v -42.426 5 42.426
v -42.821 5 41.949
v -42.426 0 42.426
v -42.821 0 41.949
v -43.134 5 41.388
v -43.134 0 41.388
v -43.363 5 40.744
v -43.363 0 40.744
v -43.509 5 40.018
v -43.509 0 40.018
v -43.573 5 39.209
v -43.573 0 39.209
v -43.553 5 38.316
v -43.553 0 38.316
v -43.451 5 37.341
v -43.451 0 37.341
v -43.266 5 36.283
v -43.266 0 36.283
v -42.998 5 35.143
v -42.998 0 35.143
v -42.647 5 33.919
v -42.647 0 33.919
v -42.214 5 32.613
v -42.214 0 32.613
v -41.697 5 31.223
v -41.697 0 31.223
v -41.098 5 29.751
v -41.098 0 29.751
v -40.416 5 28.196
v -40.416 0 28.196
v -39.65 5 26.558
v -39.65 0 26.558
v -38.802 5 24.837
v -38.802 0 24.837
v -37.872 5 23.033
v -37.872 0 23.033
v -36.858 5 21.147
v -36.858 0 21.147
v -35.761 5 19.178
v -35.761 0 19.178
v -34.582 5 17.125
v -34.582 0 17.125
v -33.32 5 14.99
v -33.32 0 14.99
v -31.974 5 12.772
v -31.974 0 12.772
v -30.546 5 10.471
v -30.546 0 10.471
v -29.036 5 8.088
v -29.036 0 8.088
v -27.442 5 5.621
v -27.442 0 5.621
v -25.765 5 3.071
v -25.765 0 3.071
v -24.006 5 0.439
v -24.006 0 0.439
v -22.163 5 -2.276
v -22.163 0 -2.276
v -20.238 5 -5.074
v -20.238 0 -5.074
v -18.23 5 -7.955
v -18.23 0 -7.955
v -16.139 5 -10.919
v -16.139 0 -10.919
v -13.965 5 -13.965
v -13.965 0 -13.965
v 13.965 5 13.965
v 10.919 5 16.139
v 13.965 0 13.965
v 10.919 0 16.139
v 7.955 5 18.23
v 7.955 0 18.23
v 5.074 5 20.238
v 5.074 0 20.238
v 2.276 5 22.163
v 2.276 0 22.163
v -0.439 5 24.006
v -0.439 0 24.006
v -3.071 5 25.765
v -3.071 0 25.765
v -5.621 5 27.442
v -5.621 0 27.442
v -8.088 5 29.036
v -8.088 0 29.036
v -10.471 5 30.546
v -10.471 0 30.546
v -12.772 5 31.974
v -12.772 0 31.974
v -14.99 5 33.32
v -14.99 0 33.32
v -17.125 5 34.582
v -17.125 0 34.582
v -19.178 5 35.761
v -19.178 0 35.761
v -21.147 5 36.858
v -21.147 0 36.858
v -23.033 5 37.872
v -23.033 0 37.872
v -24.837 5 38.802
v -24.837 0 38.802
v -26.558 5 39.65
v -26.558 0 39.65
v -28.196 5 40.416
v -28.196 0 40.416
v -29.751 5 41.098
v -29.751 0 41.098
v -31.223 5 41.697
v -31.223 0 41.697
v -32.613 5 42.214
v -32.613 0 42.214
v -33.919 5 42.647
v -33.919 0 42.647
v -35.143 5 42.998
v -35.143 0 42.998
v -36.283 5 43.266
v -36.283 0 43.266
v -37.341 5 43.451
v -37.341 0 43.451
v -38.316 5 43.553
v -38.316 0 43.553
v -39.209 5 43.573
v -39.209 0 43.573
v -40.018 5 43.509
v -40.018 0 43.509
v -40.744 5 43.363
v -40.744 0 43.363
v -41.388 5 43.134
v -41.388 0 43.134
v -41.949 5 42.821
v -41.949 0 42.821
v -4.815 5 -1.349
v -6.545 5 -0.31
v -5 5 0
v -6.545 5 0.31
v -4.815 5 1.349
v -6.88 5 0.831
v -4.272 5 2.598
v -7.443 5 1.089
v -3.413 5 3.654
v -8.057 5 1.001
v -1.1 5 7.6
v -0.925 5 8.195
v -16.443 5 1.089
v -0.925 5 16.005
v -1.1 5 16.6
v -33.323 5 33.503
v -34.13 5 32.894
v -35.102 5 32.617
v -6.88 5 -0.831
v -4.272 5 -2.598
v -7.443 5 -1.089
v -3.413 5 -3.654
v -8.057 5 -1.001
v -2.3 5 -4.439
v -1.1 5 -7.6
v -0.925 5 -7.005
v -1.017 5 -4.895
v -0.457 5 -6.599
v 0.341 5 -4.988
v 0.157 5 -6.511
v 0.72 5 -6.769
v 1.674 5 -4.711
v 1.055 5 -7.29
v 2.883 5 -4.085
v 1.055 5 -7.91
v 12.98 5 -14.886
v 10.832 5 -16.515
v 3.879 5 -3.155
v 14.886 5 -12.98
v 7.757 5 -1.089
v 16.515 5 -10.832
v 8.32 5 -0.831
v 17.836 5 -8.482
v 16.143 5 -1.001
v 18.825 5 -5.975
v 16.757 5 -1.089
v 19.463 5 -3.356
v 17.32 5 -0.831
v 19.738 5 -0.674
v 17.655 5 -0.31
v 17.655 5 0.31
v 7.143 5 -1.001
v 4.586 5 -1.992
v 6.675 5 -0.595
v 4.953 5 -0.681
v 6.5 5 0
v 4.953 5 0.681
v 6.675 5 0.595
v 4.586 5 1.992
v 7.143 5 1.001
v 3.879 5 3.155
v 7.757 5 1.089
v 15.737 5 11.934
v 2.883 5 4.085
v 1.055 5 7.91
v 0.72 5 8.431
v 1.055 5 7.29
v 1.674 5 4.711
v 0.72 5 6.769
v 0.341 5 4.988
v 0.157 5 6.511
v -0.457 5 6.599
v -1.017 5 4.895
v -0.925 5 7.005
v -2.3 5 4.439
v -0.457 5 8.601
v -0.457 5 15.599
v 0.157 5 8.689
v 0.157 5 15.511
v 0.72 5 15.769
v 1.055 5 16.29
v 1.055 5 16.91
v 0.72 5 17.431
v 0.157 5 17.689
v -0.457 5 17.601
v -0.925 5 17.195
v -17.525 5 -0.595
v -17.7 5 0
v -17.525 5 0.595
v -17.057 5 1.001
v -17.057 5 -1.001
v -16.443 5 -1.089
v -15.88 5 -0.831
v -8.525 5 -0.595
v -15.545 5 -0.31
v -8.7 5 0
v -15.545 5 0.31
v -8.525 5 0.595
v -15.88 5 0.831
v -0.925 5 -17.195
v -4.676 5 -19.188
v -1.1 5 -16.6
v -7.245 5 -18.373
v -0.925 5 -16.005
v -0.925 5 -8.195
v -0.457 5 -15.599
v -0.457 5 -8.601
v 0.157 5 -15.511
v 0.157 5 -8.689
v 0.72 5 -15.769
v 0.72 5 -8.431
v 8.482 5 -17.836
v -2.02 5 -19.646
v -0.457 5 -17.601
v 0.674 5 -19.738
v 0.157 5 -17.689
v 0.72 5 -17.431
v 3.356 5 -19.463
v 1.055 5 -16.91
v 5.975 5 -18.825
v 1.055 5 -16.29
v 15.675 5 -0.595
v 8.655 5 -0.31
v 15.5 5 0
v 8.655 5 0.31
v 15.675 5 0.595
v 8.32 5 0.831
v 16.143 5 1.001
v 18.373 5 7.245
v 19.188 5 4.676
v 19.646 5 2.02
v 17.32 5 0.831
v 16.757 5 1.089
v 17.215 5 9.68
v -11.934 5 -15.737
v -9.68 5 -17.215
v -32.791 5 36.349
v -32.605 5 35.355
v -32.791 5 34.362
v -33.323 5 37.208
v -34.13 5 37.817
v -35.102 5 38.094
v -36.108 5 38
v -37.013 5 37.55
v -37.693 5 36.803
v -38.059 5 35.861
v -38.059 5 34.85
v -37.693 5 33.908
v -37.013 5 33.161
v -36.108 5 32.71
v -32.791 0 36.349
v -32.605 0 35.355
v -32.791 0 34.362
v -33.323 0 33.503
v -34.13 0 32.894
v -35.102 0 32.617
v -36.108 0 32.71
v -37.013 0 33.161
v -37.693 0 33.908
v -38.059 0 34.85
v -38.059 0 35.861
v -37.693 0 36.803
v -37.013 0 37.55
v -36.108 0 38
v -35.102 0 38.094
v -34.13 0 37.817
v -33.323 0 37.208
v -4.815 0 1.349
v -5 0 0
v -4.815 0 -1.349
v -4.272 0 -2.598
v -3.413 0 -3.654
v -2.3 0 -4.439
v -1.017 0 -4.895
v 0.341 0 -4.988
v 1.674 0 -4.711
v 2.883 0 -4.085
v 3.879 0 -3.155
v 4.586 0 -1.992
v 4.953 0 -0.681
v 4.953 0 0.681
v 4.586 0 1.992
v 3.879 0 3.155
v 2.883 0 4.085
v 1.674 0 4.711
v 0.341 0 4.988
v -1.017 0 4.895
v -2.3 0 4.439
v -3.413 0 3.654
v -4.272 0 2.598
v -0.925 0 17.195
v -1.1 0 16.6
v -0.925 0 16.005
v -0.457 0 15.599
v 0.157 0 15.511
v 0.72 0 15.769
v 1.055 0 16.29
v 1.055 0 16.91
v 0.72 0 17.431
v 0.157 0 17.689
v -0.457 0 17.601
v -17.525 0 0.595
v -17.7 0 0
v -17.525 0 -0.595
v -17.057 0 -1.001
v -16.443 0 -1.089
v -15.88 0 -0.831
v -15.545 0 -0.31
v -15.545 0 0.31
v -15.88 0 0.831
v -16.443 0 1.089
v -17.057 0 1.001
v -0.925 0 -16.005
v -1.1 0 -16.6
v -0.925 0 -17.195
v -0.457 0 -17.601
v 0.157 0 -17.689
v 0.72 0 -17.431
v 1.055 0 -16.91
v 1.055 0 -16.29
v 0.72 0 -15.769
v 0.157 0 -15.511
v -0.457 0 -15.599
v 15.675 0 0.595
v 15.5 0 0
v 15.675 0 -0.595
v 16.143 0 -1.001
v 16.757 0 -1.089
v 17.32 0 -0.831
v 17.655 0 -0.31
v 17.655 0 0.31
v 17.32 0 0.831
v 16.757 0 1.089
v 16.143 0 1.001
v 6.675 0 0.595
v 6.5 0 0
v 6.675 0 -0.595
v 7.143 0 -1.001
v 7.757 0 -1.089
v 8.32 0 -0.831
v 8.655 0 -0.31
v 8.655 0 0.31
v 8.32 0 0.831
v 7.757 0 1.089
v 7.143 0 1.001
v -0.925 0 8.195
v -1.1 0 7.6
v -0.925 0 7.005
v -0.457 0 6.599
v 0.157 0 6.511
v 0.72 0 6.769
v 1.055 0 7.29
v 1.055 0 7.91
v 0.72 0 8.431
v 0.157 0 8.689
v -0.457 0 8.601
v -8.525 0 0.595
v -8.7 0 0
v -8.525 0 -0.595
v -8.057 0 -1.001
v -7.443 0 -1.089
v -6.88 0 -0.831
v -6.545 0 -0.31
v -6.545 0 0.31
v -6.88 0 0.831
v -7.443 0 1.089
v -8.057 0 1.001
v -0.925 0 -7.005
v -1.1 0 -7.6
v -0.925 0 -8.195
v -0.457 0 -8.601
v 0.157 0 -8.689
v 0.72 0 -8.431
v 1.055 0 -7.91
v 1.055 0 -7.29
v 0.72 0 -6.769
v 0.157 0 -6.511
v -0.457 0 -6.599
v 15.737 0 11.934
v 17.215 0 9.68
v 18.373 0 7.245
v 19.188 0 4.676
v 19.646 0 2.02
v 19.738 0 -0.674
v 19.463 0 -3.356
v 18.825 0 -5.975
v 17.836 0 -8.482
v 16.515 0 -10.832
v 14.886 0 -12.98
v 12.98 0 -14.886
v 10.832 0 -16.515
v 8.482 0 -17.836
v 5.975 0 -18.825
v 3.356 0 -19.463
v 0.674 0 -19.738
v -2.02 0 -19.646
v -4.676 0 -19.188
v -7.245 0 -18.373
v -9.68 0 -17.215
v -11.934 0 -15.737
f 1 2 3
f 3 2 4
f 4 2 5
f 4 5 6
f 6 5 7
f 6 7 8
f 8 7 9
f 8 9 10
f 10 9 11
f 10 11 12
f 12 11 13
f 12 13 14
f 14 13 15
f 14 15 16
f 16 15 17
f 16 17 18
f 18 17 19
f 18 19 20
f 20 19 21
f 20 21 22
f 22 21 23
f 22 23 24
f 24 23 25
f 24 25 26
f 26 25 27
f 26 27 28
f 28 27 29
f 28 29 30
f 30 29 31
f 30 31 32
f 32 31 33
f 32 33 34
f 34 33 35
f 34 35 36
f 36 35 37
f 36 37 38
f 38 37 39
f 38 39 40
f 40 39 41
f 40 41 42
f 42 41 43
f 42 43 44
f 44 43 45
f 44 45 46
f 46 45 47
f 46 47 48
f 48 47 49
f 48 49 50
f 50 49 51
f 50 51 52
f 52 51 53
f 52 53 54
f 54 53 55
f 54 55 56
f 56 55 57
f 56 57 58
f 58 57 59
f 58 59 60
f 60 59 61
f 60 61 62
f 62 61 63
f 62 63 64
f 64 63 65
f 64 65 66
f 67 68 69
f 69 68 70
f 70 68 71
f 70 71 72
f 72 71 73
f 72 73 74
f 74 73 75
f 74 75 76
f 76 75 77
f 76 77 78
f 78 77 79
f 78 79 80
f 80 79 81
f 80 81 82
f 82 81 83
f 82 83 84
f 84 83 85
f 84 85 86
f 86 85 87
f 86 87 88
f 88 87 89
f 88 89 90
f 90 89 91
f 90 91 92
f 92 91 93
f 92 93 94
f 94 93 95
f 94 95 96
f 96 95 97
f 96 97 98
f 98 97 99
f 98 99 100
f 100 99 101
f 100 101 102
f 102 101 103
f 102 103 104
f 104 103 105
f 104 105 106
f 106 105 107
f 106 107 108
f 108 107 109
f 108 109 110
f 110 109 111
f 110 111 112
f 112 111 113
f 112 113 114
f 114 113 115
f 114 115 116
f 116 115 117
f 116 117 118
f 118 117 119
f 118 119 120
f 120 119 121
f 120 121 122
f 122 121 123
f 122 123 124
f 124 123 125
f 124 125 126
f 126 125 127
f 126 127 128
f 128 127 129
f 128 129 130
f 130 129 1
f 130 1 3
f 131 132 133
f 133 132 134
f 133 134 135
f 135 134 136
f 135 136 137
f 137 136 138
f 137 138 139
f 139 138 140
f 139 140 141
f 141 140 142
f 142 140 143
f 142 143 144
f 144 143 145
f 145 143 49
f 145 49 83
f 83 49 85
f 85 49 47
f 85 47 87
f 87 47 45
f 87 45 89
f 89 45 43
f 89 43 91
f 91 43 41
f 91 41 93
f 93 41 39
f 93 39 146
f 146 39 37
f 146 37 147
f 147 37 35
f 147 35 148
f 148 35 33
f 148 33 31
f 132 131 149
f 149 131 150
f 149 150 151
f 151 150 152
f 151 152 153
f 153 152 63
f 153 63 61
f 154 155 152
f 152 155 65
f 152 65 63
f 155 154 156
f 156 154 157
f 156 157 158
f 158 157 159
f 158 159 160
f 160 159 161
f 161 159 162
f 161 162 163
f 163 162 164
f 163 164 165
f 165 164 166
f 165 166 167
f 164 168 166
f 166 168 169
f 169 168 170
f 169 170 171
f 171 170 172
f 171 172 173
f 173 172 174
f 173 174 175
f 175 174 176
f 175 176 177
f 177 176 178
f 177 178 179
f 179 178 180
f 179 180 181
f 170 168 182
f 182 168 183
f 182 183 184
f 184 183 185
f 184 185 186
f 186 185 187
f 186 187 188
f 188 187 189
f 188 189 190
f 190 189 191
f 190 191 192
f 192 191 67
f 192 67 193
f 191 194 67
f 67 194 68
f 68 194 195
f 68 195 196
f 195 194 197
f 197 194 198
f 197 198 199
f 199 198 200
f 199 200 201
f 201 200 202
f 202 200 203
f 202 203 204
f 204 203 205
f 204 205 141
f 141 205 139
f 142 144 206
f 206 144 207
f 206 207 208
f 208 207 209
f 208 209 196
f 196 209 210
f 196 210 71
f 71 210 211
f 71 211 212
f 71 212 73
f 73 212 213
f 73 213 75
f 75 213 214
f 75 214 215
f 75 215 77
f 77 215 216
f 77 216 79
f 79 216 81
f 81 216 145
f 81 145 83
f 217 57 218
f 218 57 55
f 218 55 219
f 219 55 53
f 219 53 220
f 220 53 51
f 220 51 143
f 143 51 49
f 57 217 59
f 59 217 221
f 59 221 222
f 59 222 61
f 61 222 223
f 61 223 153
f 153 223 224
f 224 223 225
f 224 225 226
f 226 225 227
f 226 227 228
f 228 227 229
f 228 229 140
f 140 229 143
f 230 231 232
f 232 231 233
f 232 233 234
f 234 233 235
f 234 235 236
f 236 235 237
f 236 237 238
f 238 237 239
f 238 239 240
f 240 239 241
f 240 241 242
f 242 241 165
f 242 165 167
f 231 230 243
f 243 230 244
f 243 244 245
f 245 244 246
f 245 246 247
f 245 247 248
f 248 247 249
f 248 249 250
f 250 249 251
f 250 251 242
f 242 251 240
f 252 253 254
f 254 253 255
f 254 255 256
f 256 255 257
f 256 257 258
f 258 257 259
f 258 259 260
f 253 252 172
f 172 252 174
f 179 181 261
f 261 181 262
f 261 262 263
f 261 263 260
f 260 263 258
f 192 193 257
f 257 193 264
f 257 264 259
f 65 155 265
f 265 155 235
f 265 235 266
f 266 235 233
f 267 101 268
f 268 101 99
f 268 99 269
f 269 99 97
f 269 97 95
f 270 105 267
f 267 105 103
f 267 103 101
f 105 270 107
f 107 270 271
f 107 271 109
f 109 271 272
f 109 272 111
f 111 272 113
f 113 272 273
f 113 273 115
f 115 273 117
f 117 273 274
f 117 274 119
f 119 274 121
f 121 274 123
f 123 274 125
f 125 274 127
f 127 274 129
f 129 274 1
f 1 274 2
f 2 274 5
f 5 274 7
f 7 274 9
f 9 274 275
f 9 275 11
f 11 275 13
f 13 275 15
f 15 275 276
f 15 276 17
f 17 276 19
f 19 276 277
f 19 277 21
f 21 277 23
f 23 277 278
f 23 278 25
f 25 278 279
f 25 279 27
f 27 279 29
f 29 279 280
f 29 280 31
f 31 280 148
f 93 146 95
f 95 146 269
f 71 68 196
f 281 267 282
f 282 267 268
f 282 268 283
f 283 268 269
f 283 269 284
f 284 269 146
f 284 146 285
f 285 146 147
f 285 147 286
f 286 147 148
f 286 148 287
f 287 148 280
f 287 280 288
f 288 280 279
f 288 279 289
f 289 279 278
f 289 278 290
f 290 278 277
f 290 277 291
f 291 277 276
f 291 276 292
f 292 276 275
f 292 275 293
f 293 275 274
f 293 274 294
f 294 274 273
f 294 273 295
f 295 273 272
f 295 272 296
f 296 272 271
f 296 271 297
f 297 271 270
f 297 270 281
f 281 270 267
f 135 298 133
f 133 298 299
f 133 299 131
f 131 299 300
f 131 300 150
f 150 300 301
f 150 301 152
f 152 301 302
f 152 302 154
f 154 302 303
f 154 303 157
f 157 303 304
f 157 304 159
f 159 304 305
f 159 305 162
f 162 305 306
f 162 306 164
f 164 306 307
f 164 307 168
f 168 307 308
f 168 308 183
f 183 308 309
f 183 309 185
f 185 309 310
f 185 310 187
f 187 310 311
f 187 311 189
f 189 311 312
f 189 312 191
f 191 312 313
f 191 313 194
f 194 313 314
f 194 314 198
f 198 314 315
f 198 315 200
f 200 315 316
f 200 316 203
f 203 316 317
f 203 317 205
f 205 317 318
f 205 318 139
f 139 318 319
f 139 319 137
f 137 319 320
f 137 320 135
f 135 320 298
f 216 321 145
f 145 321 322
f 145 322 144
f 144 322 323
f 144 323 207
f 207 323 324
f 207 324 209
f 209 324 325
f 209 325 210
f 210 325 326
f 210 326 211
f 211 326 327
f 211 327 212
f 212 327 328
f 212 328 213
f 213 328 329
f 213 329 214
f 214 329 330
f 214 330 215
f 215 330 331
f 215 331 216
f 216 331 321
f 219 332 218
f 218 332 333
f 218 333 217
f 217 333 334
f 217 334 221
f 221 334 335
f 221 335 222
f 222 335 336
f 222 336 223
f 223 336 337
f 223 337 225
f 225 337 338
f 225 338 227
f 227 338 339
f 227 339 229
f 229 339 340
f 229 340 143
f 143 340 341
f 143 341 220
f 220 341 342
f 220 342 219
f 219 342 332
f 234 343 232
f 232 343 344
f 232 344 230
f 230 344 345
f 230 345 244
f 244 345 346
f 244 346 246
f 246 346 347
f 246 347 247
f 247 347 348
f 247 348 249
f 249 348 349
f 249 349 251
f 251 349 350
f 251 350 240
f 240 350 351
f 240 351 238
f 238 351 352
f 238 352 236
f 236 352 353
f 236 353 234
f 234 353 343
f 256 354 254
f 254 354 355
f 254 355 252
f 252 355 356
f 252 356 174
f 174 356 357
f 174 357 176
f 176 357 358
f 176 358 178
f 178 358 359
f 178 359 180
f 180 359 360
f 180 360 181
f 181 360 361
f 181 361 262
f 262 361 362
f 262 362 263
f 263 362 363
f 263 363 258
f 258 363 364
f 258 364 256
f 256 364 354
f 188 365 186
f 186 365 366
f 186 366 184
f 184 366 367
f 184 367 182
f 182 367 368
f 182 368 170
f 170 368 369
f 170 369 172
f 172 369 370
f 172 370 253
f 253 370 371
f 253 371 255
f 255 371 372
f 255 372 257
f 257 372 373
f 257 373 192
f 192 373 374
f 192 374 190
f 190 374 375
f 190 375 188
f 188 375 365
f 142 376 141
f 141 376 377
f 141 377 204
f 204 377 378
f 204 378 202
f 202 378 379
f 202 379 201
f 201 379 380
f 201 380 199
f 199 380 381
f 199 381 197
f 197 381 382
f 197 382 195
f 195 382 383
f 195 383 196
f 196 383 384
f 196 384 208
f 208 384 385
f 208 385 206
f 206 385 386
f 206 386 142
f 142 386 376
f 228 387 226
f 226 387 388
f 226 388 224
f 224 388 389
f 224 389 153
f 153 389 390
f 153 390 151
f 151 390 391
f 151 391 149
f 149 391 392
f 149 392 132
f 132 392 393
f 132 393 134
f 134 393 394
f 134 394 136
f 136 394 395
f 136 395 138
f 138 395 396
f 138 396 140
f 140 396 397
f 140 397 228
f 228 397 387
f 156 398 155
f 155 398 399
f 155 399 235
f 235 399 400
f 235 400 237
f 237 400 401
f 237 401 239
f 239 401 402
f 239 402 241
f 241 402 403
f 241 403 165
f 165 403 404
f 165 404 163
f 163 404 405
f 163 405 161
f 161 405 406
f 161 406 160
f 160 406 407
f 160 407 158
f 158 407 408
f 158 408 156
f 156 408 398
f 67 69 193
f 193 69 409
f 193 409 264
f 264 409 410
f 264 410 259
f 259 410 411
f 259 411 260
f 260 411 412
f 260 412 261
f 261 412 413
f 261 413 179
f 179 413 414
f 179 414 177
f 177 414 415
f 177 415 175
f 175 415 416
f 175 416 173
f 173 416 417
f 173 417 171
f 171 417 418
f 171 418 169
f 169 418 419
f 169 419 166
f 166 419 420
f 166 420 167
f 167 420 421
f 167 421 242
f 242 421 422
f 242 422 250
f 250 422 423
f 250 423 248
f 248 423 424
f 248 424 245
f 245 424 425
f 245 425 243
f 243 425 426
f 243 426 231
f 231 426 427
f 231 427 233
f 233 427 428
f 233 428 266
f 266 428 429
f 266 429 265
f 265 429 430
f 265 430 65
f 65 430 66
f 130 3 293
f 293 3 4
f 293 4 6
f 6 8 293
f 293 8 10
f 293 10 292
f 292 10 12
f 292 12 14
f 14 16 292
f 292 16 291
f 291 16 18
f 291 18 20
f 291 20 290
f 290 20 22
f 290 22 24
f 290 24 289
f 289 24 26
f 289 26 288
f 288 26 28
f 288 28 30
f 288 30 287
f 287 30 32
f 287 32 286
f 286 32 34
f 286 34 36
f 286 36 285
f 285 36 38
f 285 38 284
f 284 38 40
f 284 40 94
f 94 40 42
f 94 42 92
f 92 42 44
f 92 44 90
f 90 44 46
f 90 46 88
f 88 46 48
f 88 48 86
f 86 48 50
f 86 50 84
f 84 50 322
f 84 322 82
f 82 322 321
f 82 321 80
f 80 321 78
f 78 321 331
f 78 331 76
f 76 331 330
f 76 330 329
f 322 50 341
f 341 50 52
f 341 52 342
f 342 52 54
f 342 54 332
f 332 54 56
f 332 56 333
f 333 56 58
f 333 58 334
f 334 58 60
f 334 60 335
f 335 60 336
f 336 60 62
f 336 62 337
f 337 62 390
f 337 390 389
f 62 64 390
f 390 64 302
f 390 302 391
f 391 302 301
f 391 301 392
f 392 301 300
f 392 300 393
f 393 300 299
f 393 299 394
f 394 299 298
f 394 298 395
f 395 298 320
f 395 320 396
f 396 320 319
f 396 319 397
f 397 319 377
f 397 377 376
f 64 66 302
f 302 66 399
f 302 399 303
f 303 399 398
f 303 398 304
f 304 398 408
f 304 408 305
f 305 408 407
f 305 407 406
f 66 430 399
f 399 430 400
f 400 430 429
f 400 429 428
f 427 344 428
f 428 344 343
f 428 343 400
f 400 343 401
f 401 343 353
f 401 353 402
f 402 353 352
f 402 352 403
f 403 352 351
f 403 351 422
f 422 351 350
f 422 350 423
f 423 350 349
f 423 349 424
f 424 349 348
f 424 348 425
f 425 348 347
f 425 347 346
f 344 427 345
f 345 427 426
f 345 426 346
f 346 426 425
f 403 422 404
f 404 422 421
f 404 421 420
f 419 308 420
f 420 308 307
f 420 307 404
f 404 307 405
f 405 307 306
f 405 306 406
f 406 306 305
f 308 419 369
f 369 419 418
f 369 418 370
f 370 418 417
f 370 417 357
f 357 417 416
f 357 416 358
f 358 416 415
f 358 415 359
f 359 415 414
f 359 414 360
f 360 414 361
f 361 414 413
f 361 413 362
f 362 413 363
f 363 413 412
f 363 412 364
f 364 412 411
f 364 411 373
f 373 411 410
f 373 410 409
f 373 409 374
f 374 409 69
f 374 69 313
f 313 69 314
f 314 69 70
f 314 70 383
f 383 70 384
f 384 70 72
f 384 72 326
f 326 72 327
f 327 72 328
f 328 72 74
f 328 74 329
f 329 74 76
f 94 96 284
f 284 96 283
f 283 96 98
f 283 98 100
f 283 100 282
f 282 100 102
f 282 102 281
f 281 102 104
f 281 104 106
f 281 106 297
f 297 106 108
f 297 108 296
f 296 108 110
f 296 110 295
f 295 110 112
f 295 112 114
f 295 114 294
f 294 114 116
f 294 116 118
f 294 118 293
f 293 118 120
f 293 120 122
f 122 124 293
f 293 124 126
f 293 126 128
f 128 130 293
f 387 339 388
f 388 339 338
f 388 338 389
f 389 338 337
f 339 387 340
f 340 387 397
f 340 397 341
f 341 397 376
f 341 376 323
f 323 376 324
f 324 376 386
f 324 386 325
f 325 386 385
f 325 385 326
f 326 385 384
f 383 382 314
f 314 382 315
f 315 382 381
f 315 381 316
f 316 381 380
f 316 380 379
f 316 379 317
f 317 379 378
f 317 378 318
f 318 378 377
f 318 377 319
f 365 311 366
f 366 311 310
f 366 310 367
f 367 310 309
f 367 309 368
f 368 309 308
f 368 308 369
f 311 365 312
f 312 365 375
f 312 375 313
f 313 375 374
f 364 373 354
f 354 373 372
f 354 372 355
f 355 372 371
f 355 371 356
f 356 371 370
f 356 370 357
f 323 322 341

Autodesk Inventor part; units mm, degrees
ref_plane "YZ Plane" through (0, 0, 0) normal (1, 0, 0) x (0, 1, 0)
ref_plane "XZ Plane" through (0, 0, 0) normal (0, 1, 0) x (-1, 0, 0)
ref_plane "XY Plane" through (0, 0, 0) normal (0, 0, 1) x (1, 0, 0)
sketch "Sketch1" plane through (0, 0, 0) normal (0, 1, 0) x (-1, 0, 0)
  circle A0 centre (0, 0) radius 19.75
  circle A1 centre (0, 0) radius 5
  circle A2 centre (0, 16.6) radius 1.1
  circle A3 centre (16.6, 0) radius 1.1
  circle A4 centre (0, -16.6) radius 1.1
  circle A5 centre (-16.6, 0) radius 1.1
  circle A6 centre (-7.6, 0) radius 1.1
  circle A7 centre (0, 7.6) radius 1.1
  circle A8 centre (7.6, 0) radius 1.1
  circle A9 centre (0, -7.6) radius 1.1
  point P0 (0, 19.75)
  point P1 (19.75, 0)
  point P2 (0, -19.75)
  point P3 (-19.75, 0)
  point P4 (0, -5)
  point P5 (-5, 0)
  point P6 (0, 5)
  point P7 (5, 0)
  dimension "d0" = 39.5
  dimension "d1" = 10
  dimension "d2" = 2.2
  dimension "d3" = 3.15
  dimension "d4" = 2.2
  dimension "d5" = 3.15
  dimension "d6" = 2.2
  dimension "d7" = 3.15
  dimension "d8" = 2.2
  dimension "d9" = 3.15
  dimension "d10" = 2.2
  dimension "d11" = 2.2
  dimension "d12" = 2.2
  dimension "d13" = 2.2
  dimension "d14" = 2.6
  dimension "d15" = 2.6
  dimension "d16" = 2.6
  dimension "d17" = 2.6
extrude "Extrusion1" add sketch "Sketch1" along normal blind 5
sketch "Sketch2" plane through (0, 5, 0) normal (0, 1, 0) x (1, 0, 0)
  line L0 (17.6777, 17.6777) -> (67.6777, 17.6777) construction
  line L1 (0, 0) -> (-35.3553, -35.3553)
  line L2 (0, 0) -> (50, 0) construction
  circle A0 centre (-35.3553, -35.3553) radius 2.75
  circle A1 centre (0, 0) radius 19.75 projected
  line L3 (13.9654, -13.9654) -> (-13.9654, 13.9654)
  line L4 (-13.9654, 13.9654) -> (-56.3918, -28.461)
  line L5 (13.9654, -13.9654) -> (-28.461, -56.3918)
  line L6 (-28.461, -56.3918) -> (-56.3918, -28.461)
  circle A2 centre (0, -16.6) radius 1.1 projected
  circle A3 centre (0, -16.6) radius 1.1
  circle A4 centre (0, -7.6) radius 1.1 projected
  circle A5 centre (0, -7.6) radius 1.1
  circle A6 centre (-7.6, 0) radius 1.1 projected
  circle A7 centre (-7.6, 0) radius 1.1
  circle A8 centre (-16.6, 0) radius 1.1 projected
  circle A9 centre (-16.6, 0) radius 1.1
  circle A10 centre (0, 0) radius 5
  dimension "d22" = 50
  dimension "d23" = 135
  dimension "d24" = 5.5
  dimension "d25" = 60
  dimension "d26" = 60
extrude "Extrusion2" add sketch "Sketch2" against normal blind 5 contours A1 L5 L6 L4
sketch "Sketch3" plane through (0, 5, 0) normal (0, 1, 0) x (1, 0, 0)
  line L0 (-28.461, -56.3918) -> (-56.3918, -28.461) projected
  arc A0 (13.9654, -13.9654) -> (-13.9654, 13.9654) centre (0, 0) ccw projected
  line L1 (-28.461, -56.3918) -> (13.9654, -13.9654) projected
  spline S0 degree 2 poles (-13.9654, 13.9654) (-84.8528, -84.8528) (13.9654, -13.9654) knots 0 0 0 1 1 1
  line L2 (13.9654, -13.9654) -> (-28.461, -56.3918)
  line L3 (-56.3918, -28.461) -> (-13.9654, 13.9654)
  point P0 (-42.4264, -42.4264)
extrude "Extrusion3" cut sketch "Sketch3" against normal blind 5 contours L0 S0 L1 | L0 L3 S0
properties part number "Servo-head.finalV1"
